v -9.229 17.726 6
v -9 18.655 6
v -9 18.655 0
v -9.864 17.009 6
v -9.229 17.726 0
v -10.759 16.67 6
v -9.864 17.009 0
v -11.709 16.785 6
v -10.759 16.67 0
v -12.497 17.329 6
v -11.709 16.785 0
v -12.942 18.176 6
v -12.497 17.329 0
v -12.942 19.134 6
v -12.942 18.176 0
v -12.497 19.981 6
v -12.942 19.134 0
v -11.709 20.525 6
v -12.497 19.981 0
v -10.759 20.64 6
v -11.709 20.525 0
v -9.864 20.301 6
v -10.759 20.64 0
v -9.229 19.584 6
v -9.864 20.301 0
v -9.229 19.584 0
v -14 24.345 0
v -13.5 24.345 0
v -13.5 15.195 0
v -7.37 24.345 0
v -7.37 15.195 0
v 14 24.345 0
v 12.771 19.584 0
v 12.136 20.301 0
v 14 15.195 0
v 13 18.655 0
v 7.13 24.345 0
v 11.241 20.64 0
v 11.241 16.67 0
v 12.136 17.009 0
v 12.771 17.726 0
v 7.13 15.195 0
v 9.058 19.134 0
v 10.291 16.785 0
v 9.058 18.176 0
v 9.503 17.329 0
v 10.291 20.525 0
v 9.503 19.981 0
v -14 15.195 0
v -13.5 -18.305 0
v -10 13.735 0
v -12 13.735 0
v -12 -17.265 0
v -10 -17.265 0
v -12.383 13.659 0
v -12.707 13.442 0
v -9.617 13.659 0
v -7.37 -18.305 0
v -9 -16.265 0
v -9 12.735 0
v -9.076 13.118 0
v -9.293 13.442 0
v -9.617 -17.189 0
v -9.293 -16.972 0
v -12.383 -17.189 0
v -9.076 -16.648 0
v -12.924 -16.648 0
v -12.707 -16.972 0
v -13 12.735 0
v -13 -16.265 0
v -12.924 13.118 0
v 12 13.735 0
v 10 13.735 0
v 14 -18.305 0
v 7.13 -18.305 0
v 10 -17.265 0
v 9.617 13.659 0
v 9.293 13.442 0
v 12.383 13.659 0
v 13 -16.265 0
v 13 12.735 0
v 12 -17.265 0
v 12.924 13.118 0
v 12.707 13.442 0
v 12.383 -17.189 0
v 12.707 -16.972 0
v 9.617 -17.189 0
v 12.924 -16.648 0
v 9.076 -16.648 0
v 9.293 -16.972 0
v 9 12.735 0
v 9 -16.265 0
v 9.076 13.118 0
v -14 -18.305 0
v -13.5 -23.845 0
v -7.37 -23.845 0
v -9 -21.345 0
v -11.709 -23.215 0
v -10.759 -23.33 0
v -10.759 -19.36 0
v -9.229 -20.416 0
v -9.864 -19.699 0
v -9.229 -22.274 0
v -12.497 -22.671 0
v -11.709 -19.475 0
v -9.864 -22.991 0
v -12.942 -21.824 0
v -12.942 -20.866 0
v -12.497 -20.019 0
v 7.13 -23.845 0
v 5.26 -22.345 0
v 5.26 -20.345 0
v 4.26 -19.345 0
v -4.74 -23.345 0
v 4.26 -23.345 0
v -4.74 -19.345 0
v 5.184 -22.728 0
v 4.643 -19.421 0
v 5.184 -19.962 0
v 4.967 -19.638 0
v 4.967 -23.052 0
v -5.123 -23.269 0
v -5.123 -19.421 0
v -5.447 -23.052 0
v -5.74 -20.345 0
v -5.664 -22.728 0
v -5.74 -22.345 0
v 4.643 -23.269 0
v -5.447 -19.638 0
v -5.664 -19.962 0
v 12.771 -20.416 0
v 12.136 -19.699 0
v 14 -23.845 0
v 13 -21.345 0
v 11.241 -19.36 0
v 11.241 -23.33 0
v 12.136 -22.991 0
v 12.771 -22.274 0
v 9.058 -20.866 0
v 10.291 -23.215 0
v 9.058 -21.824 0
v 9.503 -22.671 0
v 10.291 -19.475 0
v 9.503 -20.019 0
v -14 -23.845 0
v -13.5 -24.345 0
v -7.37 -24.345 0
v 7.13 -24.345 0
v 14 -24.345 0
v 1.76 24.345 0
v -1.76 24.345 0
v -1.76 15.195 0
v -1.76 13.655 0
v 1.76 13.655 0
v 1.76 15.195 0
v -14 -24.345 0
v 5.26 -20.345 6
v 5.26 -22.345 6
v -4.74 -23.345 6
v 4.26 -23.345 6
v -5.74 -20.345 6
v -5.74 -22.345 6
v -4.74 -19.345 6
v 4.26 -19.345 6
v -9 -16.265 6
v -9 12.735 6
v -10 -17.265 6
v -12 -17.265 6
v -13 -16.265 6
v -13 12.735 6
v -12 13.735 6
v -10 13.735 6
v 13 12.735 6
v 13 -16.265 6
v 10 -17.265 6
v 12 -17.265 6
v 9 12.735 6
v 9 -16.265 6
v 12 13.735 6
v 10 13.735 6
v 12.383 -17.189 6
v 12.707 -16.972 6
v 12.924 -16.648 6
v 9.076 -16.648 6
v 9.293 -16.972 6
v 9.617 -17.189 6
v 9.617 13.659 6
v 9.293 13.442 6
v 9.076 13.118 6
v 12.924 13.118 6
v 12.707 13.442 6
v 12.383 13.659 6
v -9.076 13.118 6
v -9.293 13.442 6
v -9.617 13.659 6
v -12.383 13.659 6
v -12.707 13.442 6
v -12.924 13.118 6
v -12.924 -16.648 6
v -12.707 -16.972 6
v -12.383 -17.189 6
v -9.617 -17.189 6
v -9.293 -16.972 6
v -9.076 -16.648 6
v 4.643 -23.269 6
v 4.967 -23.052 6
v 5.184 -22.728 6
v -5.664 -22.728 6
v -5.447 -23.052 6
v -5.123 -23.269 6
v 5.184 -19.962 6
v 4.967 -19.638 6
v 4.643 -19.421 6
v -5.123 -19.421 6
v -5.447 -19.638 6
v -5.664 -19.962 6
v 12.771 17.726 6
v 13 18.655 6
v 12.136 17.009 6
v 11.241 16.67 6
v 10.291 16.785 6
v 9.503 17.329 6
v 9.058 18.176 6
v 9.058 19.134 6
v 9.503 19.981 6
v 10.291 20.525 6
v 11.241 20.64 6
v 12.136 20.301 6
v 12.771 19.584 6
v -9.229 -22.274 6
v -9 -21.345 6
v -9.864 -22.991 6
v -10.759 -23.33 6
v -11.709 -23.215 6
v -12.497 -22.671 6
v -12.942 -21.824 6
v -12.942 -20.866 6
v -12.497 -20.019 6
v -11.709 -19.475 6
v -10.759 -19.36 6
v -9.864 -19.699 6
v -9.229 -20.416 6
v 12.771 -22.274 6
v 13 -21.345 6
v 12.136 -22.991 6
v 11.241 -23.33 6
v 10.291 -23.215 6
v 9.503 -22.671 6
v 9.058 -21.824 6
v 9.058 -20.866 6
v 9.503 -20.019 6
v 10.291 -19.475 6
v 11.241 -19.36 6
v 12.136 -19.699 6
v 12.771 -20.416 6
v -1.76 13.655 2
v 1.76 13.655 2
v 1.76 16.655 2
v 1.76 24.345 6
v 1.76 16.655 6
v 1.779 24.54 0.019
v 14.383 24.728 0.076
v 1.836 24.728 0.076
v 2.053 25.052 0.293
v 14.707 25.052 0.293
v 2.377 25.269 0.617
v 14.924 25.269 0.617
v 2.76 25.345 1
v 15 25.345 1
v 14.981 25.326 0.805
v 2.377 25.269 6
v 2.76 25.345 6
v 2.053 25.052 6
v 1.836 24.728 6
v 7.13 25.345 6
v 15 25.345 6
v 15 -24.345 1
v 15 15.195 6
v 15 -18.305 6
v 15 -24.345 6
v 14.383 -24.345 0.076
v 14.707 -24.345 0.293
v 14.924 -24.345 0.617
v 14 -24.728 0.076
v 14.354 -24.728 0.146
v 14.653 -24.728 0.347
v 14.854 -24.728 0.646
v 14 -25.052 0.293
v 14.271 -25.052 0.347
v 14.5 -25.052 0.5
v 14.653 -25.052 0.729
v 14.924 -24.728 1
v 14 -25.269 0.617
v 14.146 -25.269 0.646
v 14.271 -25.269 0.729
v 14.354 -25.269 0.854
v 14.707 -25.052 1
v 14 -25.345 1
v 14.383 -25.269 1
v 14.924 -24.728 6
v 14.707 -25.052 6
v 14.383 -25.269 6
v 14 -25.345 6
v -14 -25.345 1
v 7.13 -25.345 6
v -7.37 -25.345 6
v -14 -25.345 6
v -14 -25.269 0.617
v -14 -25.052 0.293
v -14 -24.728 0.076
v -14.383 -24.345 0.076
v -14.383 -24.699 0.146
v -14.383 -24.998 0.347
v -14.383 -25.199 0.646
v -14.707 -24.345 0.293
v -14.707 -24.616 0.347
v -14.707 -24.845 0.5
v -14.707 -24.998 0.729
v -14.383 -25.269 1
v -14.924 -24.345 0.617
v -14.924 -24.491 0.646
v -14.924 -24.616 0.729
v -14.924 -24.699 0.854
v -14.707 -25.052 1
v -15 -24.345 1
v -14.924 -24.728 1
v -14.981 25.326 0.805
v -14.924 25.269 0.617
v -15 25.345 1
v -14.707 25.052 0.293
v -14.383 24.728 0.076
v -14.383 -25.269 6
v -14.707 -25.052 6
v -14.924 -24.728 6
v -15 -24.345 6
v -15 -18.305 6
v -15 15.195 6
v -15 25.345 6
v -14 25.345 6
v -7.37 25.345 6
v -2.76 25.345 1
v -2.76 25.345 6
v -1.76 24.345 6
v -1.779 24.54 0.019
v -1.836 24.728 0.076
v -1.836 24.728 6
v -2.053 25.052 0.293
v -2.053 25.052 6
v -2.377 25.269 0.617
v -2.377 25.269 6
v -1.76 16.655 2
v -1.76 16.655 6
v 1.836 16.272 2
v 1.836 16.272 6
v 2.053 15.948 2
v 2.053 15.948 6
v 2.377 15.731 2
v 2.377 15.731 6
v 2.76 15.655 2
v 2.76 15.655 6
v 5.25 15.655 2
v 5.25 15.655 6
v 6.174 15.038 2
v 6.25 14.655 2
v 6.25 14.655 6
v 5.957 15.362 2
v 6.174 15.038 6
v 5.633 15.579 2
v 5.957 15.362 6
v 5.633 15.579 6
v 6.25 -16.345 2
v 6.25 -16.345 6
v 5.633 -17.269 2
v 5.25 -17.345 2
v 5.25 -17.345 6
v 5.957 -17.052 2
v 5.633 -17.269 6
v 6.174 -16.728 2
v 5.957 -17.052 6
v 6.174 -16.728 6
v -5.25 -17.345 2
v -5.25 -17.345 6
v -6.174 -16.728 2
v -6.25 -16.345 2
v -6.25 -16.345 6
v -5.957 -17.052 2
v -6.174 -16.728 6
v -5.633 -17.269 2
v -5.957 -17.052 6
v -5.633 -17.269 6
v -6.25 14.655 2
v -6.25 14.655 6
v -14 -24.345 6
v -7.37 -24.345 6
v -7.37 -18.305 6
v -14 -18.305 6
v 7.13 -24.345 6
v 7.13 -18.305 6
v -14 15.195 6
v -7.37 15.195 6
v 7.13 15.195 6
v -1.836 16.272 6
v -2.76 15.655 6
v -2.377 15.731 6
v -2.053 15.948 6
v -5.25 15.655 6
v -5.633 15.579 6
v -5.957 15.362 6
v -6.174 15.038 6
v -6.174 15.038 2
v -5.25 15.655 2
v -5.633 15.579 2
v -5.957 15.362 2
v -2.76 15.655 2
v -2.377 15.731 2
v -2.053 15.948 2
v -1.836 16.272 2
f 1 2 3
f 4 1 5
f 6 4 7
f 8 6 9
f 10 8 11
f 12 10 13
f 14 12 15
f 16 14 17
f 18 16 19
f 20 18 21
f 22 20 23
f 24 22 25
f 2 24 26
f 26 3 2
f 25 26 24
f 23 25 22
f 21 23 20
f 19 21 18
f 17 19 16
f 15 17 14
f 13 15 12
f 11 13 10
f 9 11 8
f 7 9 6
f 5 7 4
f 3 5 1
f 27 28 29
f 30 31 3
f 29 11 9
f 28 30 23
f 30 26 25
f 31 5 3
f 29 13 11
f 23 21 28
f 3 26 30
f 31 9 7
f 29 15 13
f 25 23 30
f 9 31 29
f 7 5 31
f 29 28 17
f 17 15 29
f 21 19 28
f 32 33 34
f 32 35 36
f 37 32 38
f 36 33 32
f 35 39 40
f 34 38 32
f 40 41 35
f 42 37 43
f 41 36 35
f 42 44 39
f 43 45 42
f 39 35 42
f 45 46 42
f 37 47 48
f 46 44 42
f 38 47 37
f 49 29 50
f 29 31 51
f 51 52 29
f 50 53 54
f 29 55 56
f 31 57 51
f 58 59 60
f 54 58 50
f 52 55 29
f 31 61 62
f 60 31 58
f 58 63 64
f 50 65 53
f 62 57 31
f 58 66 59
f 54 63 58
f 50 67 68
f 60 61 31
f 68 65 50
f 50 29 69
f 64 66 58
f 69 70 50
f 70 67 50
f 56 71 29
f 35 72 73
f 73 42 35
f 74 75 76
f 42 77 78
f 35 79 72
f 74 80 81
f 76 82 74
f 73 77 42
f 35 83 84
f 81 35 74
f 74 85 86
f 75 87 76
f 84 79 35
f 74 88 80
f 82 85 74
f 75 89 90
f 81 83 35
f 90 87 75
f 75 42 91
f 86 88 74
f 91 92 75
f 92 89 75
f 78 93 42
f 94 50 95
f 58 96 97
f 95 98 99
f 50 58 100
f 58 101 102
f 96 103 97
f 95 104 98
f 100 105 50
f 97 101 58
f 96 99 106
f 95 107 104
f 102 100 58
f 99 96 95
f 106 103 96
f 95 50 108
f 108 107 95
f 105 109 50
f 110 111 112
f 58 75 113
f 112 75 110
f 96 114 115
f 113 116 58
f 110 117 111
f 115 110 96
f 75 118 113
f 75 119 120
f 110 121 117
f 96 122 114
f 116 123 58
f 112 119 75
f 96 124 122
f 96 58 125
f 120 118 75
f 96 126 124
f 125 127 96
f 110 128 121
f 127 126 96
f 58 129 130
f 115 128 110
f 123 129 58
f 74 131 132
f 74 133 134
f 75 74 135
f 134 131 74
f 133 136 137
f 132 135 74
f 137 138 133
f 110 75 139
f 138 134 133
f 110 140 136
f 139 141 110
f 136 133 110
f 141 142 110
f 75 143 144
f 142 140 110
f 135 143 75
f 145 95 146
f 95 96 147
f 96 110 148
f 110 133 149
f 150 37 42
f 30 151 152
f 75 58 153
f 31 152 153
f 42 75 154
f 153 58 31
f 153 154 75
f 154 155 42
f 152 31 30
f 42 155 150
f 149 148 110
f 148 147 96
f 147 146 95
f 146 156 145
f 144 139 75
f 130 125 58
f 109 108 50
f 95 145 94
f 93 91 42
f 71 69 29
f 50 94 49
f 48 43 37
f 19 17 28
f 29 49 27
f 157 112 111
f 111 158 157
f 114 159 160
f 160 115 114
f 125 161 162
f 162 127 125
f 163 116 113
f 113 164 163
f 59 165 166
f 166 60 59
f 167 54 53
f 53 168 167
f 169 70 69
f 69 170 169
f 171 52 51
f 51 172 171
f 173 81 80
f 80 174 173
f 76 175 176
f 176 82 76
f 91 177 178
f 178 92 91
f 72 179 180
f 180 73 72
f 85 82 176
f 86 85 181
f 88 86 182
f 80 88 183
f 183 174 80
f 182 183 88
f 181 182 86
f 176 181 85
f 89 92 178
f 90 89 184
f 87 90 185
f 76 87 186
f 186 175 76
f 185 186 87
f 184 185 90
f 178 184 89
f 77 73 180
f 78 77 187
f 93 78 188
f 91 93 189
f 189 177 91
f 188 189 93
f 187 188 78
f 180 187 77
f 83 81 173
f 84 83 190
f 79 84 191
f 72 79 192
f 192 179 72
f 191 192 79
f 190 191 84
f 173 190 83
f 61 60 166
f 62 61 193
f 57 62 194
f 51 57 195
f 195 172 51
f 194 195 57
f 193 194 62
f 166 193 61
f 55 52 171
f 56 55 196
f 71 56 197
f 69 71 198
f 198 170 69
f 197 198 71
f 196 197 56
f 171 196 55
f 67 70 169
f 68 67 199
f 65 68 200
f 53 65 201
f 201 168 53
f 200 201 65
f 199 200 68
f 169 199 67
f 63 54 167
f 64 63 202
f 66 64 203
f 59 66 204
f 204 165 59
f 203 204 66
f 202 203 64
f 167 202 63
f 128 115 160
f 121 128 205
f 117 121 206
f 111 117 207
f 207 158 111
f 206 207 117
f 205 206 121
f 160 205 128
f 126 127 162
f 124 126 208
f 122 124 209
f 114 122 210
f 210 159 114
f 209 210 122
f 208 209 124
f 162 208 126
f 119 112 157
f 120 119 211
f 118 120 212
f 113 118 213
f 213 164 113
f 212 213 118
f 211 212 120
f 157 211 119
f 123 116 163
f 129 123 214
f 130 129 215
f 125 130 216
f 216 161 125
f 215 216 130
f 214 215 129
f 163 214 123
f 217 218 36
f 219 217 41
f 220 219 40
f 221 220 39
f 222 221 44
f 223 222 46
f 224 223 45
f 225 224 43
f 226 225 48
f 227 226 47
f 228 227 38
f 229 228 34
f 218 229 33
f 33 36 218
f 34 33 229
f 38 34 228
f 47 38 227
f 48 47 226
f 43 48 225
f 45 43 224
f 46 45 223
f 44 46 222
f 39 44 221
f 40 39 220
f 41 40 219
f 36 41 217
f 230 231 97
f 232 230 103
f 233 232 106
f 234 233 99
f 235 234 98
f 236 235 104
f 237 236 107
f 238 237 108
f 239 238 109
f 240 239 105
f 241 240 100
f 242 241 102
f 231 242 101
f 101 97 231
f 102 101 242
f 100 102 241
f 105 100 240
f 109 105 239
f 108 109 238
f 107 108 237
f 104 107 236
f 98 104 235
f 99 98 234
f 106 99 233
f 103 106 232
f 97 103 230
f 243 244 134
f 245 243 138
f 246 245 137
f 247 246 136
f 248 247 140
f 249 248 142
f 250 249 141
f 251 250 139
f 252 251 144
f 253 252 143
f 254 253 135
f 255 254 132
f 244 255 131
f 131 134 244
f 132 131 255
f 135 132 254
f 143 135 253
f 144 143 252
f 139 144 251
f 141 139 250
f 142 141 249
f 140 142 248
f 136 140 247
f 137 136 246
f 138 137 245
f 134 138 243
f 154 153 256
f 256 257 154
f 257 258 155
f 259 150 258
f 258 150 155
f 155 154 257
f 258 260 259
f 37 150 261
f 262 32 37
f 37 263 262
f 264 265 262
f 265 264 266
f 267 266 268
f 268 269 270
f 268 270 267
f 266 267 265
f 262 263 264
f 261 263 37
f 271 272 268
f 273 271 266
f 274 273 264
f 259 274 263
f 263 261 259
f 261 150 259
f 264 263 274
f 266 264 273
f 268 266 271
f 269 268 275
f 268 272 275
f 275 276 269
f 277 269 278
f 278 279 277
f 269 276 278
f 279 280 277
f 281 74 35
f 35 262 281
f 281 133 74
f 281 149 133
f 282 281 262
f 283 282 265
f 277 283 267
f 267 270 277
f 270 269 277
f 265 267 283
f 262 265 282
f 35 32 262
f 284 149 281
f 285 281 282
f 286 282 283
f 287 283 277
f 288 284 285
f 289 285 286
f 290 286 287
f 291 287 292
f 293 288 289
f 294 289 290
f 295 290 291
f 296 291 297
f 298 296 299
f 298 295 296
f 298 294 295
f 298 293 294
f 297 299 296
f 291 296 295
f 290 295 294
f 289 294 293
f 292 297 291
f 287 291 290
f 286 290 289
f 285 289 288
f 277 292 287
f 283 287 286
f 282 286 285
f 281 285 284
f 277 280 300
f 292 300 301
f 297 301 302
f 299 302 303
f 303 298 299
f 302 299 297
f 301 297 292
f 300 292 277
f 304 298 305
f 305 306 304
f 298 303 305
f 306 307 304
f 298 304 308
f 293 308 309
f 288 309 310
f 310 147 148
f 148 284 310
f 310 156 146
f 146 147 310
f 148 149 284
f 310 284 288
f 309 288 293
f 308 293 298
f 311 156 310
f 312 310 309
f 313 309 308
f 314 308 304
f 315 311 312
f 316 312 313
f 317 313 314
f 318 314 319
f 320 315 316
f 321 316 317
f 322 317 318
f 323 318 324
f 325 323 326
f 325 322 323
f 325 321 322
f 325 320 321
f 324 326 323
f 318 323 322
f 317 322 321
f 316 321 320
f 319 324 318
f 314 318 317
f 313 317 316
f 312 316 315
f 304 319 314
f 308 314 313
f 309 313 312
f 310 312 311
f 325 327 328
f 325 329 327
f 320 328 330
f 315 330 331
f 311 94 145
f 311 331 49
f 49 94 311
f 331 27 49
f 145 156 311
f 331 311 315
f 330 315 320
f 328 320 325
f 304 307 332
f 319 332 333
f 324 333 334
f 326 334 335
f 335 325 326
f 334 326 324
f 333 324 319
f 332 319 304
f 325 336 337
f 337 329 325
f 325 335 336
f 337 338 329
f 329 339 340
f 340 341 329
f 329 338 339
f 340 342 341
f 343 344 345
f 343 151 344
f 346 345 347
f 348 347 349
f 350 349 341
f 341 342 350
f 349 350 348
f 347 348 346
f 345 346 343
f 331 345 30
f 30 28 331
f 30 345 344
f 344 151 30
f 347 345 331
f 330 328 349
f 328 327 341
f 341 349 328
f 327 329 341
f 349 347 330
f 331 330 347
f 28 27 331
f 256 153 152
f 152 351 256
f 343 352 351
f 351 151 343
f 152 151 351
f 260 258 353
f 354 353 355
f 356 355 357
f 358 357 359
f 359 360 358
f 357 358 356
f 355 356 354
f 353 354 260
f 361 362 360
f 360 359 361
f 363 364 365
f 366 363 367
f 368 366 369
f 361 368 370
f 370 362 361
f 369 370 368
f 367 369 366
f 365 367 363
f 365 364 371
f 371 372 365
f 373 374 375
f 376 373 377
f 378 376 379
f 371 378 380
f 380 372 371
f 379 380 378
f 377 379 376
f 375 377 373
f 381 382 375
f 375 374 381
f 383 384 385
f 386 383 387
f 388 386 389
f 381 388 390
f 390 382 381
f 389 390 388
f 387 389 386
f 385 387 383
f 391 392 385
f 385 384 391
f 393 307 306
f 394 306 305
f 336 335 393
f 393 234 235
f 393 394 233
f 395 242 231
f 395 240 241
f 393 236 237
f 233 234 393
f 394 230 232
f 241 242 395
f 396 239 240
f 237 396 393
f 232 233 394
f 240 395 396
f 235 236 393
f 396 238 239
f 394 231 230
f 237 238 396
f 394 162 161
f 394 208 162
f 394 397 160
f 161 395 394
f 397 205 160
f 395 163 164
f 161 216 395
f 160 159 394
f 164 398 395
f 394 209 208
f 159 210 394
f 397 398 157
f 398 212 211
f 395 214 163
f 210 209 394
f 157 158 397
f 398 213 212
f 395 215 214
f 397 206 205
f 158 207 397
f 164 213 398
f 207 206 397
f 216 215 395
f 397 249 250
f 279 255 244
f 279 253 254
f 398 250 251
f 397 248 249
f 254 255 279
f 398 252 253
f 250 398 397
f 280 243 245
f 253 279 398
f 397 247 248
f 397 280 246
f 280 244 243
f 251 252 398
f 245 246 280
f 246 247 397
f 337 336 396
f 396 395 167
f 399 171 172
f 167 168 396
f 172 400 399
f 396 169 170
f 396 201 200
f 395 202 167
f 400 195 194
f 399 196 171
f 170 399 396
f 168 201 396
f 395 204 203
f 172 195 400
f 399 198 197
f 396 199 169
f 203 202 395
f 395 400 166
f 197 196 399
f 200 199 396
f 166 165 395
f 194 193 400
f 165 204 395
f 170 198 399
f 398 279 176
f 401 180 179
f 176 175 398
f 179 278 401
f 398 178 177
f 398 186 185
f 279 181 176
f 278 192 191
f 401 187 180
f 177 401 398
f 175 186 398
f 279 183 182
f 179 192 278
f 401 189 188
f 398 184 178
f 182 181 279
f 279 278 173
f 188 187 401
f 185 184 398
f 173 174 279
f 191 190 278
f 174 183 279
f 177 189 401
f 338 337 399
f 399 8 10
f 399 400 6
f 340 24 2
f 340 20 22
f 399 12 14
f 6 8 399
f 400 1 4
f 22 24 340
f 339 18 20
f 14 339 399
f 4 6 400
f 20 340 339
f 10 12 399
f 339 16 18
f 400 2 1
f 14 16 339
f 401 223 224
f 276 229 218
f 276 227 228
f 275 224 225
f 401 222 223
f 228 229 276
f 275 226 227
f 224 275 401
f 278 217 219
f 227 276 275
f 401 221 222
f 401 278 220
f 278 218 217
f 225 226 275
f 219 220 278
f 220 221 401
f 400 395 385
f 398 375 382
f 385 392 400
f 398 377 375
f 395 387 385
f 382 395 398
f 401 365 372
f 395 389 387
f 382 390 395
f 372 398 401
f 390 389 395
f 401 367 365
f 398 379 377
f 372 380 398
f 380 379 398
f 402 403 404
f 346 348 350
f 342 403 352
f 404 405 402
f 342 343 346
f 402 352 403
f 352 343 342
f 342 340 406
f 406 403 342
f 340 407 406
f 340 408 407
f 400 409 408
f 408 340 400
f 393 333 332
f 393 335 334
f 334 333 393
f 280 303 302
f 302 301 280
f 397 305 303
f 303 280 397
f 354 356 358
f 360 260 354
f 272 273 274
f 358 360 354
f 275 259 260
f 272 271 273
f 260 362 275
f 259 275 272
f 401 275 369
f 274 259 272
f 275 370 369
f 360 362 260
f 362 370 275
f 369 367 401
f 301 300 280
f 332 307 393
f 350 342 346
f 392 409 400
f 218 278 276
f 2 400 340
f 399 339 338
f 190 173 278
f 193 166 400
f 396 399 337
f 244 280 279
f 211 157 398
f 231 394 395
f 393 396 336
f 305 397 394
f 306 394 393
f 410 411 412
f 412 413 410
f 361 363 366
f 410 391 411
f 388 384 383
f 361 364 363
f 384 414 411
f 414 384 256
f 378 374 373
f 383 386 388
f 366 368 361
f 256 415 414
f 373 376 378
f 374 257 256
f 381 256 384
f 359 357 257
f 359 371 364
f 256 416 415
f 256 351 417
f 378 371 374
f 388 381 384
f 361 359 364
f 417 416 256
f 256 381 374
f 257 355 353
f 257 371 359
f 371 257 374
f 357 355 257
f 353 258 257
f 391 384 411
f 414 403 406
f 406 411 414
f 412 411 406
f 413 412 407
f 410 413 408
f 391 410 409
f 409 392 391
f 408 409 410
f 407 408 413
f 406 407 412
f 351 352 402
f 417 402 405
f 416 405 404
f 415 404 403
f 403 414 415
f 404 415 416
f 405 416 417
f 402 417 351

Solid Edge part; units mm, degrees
sketch "Sketch1" plane through (0, 0, 0) normal (0, 0, 1) x (1, 0, 0)
  line L0 (-15, -25.345) -> (15, -25.345)
  line L1 (15, -25.345) -> (15, 25.345)
  line L2 (15, 25.345) -> (-15, 25.345)
  line L3 (-15, 25.345) -> (-15, -25.345)
  dimension "D1" = 30
  dimension "D2" = 50.69
extrude "Protrusion1" add sketch "Sketch1" along normal blind 6
hole "Hole1" at (-11, 18.655, 6) direction (0, 0, -1) diameter 4 end up to next
hole "Hole2" at (11, 18.655, 6) direction (0, 0, -1) diameter 4 end up to next
hole "Hole3" at (-11, -21.345, 6) direction (0, 0, -1) diameter 4 end up to next
hole "Hole4" at (11, -21.345, 6) direction (0, 0, -1) diameter 4 end up to next
sketch "Sketch2" plane through (0, 0, 0) normal (0, 0, -1) x (1, 0, 0)
  line L0 (1.76, -25.345) -> (-1.76, -25.345)
  line L1 (-1.76, -25.345) -> (-1.76, -13.655)
  line L2 (-1.76, -13.655) -> (1.76, -13.655)
  line L3 (1.76, -13.655) -> (1.76, -25.345)
  dimension "D1" = 11.69
  dimension "D2" = 13.24
  dimension "D3" = 13.24
extrude "Cutout1" cut sketch "Sketch2" against normal through all
sketch "Sketch3" plane through (0, 0, 6) normal (0, 0, 1) x (0, 1, 0)
  line L0 (-17.345, -6.25) -> (15.655, -6.25)
  line L1 (15.655, -6.25) -> (15.655, 6.25)
  line L2 (15.655, 6.25) -> (-17.345, 6.25)
  line L3 (-17.345, 6.25) -> (-17.345, -6.25)
  dimension "D1" = 33
  dimension "D2" = 12.5
  dimension "D3" = 8
  dimension "D4" = 8.75
extrude "Utskärning_för_batteriet" cut sketch "Sketch3" against normal blind 4
sketch "Sketch4" plane through (0, 0, 6) normal (0, 0, 1) x (-1, 0, 0)
  line L0 (-5.26, 23.345) -> (5.74, 23.345)
  line L1 (5.74, 23.345) -> (5.74, 19.345)
  line L2 (5.74, 19.345) -> (-5.26, 19.345)
  line L3 (-5.26, 19.345) -> (-5.26, 23.345)
  line L4 (9, 17.265) -> (13, 17.265)
  line L5 (13, 17.265) -> (13, -13.735)
  line L6 (13, -13.735) -> (9, -13.735)
  line L7 (9, -13.735) -> (9, 17.265)
  line L8 (-13, 17.265) -> (-9, 17.265)
  line L9 (-9, 17.265) -> (-9, -13.735)
  line L10 (-9, -13.735) -> (-13, -13.735)
  line L11 (-13, -13.735) -> (-13, 17.265)
  dimension "D1" = 11
  dimension "D2" = 4
  dimension "D3" = 2
  dimension "D4" = 5.26
  dimension "D5" = 4
  dimension "D6" = 31
  dimension "D7" = 4
  dimension "D8" = 31
  dimension "D9" = 2
  dimension "D10" = 2
  dimension "D11" = 8.08
  dimension "D12" = 8.08
extrude "Cutout2" cut sketch "Sketch4" against normal through all
fillet "Avrundningar_1" radius 1 27 edges at (-15, 0, 0) (0, -25.345, 0) (15, 0, 0) (-15, -25.345, 3) (15, -25.345, 3) (-8.38, 25.345, 0) (-1.76, 25.345, 3) (1.76, 25.345, 3) (8.38, 25.345, 0) (6.25, -17.345, 4) (-6.25, -17.345, 4) (-6.25, 15.655, 4) (6.25, 15.655, 4) (13, -17.265, 3) (9, -17.265, 3) (9, 13.735, 3) (13, 13.735, 3) (-9, 13.735, 3) (-13, 13.735, 3) (-13, -17.265, 3) (-9, -17.265, 3) (5.26, -23.345, 3) (-5.74, -23.345, 3) (5.26, -19.345, 3) (-5.74, -19.345, 3) (1.76, 15.655, 4) (-1.76, 15.655, 4)
